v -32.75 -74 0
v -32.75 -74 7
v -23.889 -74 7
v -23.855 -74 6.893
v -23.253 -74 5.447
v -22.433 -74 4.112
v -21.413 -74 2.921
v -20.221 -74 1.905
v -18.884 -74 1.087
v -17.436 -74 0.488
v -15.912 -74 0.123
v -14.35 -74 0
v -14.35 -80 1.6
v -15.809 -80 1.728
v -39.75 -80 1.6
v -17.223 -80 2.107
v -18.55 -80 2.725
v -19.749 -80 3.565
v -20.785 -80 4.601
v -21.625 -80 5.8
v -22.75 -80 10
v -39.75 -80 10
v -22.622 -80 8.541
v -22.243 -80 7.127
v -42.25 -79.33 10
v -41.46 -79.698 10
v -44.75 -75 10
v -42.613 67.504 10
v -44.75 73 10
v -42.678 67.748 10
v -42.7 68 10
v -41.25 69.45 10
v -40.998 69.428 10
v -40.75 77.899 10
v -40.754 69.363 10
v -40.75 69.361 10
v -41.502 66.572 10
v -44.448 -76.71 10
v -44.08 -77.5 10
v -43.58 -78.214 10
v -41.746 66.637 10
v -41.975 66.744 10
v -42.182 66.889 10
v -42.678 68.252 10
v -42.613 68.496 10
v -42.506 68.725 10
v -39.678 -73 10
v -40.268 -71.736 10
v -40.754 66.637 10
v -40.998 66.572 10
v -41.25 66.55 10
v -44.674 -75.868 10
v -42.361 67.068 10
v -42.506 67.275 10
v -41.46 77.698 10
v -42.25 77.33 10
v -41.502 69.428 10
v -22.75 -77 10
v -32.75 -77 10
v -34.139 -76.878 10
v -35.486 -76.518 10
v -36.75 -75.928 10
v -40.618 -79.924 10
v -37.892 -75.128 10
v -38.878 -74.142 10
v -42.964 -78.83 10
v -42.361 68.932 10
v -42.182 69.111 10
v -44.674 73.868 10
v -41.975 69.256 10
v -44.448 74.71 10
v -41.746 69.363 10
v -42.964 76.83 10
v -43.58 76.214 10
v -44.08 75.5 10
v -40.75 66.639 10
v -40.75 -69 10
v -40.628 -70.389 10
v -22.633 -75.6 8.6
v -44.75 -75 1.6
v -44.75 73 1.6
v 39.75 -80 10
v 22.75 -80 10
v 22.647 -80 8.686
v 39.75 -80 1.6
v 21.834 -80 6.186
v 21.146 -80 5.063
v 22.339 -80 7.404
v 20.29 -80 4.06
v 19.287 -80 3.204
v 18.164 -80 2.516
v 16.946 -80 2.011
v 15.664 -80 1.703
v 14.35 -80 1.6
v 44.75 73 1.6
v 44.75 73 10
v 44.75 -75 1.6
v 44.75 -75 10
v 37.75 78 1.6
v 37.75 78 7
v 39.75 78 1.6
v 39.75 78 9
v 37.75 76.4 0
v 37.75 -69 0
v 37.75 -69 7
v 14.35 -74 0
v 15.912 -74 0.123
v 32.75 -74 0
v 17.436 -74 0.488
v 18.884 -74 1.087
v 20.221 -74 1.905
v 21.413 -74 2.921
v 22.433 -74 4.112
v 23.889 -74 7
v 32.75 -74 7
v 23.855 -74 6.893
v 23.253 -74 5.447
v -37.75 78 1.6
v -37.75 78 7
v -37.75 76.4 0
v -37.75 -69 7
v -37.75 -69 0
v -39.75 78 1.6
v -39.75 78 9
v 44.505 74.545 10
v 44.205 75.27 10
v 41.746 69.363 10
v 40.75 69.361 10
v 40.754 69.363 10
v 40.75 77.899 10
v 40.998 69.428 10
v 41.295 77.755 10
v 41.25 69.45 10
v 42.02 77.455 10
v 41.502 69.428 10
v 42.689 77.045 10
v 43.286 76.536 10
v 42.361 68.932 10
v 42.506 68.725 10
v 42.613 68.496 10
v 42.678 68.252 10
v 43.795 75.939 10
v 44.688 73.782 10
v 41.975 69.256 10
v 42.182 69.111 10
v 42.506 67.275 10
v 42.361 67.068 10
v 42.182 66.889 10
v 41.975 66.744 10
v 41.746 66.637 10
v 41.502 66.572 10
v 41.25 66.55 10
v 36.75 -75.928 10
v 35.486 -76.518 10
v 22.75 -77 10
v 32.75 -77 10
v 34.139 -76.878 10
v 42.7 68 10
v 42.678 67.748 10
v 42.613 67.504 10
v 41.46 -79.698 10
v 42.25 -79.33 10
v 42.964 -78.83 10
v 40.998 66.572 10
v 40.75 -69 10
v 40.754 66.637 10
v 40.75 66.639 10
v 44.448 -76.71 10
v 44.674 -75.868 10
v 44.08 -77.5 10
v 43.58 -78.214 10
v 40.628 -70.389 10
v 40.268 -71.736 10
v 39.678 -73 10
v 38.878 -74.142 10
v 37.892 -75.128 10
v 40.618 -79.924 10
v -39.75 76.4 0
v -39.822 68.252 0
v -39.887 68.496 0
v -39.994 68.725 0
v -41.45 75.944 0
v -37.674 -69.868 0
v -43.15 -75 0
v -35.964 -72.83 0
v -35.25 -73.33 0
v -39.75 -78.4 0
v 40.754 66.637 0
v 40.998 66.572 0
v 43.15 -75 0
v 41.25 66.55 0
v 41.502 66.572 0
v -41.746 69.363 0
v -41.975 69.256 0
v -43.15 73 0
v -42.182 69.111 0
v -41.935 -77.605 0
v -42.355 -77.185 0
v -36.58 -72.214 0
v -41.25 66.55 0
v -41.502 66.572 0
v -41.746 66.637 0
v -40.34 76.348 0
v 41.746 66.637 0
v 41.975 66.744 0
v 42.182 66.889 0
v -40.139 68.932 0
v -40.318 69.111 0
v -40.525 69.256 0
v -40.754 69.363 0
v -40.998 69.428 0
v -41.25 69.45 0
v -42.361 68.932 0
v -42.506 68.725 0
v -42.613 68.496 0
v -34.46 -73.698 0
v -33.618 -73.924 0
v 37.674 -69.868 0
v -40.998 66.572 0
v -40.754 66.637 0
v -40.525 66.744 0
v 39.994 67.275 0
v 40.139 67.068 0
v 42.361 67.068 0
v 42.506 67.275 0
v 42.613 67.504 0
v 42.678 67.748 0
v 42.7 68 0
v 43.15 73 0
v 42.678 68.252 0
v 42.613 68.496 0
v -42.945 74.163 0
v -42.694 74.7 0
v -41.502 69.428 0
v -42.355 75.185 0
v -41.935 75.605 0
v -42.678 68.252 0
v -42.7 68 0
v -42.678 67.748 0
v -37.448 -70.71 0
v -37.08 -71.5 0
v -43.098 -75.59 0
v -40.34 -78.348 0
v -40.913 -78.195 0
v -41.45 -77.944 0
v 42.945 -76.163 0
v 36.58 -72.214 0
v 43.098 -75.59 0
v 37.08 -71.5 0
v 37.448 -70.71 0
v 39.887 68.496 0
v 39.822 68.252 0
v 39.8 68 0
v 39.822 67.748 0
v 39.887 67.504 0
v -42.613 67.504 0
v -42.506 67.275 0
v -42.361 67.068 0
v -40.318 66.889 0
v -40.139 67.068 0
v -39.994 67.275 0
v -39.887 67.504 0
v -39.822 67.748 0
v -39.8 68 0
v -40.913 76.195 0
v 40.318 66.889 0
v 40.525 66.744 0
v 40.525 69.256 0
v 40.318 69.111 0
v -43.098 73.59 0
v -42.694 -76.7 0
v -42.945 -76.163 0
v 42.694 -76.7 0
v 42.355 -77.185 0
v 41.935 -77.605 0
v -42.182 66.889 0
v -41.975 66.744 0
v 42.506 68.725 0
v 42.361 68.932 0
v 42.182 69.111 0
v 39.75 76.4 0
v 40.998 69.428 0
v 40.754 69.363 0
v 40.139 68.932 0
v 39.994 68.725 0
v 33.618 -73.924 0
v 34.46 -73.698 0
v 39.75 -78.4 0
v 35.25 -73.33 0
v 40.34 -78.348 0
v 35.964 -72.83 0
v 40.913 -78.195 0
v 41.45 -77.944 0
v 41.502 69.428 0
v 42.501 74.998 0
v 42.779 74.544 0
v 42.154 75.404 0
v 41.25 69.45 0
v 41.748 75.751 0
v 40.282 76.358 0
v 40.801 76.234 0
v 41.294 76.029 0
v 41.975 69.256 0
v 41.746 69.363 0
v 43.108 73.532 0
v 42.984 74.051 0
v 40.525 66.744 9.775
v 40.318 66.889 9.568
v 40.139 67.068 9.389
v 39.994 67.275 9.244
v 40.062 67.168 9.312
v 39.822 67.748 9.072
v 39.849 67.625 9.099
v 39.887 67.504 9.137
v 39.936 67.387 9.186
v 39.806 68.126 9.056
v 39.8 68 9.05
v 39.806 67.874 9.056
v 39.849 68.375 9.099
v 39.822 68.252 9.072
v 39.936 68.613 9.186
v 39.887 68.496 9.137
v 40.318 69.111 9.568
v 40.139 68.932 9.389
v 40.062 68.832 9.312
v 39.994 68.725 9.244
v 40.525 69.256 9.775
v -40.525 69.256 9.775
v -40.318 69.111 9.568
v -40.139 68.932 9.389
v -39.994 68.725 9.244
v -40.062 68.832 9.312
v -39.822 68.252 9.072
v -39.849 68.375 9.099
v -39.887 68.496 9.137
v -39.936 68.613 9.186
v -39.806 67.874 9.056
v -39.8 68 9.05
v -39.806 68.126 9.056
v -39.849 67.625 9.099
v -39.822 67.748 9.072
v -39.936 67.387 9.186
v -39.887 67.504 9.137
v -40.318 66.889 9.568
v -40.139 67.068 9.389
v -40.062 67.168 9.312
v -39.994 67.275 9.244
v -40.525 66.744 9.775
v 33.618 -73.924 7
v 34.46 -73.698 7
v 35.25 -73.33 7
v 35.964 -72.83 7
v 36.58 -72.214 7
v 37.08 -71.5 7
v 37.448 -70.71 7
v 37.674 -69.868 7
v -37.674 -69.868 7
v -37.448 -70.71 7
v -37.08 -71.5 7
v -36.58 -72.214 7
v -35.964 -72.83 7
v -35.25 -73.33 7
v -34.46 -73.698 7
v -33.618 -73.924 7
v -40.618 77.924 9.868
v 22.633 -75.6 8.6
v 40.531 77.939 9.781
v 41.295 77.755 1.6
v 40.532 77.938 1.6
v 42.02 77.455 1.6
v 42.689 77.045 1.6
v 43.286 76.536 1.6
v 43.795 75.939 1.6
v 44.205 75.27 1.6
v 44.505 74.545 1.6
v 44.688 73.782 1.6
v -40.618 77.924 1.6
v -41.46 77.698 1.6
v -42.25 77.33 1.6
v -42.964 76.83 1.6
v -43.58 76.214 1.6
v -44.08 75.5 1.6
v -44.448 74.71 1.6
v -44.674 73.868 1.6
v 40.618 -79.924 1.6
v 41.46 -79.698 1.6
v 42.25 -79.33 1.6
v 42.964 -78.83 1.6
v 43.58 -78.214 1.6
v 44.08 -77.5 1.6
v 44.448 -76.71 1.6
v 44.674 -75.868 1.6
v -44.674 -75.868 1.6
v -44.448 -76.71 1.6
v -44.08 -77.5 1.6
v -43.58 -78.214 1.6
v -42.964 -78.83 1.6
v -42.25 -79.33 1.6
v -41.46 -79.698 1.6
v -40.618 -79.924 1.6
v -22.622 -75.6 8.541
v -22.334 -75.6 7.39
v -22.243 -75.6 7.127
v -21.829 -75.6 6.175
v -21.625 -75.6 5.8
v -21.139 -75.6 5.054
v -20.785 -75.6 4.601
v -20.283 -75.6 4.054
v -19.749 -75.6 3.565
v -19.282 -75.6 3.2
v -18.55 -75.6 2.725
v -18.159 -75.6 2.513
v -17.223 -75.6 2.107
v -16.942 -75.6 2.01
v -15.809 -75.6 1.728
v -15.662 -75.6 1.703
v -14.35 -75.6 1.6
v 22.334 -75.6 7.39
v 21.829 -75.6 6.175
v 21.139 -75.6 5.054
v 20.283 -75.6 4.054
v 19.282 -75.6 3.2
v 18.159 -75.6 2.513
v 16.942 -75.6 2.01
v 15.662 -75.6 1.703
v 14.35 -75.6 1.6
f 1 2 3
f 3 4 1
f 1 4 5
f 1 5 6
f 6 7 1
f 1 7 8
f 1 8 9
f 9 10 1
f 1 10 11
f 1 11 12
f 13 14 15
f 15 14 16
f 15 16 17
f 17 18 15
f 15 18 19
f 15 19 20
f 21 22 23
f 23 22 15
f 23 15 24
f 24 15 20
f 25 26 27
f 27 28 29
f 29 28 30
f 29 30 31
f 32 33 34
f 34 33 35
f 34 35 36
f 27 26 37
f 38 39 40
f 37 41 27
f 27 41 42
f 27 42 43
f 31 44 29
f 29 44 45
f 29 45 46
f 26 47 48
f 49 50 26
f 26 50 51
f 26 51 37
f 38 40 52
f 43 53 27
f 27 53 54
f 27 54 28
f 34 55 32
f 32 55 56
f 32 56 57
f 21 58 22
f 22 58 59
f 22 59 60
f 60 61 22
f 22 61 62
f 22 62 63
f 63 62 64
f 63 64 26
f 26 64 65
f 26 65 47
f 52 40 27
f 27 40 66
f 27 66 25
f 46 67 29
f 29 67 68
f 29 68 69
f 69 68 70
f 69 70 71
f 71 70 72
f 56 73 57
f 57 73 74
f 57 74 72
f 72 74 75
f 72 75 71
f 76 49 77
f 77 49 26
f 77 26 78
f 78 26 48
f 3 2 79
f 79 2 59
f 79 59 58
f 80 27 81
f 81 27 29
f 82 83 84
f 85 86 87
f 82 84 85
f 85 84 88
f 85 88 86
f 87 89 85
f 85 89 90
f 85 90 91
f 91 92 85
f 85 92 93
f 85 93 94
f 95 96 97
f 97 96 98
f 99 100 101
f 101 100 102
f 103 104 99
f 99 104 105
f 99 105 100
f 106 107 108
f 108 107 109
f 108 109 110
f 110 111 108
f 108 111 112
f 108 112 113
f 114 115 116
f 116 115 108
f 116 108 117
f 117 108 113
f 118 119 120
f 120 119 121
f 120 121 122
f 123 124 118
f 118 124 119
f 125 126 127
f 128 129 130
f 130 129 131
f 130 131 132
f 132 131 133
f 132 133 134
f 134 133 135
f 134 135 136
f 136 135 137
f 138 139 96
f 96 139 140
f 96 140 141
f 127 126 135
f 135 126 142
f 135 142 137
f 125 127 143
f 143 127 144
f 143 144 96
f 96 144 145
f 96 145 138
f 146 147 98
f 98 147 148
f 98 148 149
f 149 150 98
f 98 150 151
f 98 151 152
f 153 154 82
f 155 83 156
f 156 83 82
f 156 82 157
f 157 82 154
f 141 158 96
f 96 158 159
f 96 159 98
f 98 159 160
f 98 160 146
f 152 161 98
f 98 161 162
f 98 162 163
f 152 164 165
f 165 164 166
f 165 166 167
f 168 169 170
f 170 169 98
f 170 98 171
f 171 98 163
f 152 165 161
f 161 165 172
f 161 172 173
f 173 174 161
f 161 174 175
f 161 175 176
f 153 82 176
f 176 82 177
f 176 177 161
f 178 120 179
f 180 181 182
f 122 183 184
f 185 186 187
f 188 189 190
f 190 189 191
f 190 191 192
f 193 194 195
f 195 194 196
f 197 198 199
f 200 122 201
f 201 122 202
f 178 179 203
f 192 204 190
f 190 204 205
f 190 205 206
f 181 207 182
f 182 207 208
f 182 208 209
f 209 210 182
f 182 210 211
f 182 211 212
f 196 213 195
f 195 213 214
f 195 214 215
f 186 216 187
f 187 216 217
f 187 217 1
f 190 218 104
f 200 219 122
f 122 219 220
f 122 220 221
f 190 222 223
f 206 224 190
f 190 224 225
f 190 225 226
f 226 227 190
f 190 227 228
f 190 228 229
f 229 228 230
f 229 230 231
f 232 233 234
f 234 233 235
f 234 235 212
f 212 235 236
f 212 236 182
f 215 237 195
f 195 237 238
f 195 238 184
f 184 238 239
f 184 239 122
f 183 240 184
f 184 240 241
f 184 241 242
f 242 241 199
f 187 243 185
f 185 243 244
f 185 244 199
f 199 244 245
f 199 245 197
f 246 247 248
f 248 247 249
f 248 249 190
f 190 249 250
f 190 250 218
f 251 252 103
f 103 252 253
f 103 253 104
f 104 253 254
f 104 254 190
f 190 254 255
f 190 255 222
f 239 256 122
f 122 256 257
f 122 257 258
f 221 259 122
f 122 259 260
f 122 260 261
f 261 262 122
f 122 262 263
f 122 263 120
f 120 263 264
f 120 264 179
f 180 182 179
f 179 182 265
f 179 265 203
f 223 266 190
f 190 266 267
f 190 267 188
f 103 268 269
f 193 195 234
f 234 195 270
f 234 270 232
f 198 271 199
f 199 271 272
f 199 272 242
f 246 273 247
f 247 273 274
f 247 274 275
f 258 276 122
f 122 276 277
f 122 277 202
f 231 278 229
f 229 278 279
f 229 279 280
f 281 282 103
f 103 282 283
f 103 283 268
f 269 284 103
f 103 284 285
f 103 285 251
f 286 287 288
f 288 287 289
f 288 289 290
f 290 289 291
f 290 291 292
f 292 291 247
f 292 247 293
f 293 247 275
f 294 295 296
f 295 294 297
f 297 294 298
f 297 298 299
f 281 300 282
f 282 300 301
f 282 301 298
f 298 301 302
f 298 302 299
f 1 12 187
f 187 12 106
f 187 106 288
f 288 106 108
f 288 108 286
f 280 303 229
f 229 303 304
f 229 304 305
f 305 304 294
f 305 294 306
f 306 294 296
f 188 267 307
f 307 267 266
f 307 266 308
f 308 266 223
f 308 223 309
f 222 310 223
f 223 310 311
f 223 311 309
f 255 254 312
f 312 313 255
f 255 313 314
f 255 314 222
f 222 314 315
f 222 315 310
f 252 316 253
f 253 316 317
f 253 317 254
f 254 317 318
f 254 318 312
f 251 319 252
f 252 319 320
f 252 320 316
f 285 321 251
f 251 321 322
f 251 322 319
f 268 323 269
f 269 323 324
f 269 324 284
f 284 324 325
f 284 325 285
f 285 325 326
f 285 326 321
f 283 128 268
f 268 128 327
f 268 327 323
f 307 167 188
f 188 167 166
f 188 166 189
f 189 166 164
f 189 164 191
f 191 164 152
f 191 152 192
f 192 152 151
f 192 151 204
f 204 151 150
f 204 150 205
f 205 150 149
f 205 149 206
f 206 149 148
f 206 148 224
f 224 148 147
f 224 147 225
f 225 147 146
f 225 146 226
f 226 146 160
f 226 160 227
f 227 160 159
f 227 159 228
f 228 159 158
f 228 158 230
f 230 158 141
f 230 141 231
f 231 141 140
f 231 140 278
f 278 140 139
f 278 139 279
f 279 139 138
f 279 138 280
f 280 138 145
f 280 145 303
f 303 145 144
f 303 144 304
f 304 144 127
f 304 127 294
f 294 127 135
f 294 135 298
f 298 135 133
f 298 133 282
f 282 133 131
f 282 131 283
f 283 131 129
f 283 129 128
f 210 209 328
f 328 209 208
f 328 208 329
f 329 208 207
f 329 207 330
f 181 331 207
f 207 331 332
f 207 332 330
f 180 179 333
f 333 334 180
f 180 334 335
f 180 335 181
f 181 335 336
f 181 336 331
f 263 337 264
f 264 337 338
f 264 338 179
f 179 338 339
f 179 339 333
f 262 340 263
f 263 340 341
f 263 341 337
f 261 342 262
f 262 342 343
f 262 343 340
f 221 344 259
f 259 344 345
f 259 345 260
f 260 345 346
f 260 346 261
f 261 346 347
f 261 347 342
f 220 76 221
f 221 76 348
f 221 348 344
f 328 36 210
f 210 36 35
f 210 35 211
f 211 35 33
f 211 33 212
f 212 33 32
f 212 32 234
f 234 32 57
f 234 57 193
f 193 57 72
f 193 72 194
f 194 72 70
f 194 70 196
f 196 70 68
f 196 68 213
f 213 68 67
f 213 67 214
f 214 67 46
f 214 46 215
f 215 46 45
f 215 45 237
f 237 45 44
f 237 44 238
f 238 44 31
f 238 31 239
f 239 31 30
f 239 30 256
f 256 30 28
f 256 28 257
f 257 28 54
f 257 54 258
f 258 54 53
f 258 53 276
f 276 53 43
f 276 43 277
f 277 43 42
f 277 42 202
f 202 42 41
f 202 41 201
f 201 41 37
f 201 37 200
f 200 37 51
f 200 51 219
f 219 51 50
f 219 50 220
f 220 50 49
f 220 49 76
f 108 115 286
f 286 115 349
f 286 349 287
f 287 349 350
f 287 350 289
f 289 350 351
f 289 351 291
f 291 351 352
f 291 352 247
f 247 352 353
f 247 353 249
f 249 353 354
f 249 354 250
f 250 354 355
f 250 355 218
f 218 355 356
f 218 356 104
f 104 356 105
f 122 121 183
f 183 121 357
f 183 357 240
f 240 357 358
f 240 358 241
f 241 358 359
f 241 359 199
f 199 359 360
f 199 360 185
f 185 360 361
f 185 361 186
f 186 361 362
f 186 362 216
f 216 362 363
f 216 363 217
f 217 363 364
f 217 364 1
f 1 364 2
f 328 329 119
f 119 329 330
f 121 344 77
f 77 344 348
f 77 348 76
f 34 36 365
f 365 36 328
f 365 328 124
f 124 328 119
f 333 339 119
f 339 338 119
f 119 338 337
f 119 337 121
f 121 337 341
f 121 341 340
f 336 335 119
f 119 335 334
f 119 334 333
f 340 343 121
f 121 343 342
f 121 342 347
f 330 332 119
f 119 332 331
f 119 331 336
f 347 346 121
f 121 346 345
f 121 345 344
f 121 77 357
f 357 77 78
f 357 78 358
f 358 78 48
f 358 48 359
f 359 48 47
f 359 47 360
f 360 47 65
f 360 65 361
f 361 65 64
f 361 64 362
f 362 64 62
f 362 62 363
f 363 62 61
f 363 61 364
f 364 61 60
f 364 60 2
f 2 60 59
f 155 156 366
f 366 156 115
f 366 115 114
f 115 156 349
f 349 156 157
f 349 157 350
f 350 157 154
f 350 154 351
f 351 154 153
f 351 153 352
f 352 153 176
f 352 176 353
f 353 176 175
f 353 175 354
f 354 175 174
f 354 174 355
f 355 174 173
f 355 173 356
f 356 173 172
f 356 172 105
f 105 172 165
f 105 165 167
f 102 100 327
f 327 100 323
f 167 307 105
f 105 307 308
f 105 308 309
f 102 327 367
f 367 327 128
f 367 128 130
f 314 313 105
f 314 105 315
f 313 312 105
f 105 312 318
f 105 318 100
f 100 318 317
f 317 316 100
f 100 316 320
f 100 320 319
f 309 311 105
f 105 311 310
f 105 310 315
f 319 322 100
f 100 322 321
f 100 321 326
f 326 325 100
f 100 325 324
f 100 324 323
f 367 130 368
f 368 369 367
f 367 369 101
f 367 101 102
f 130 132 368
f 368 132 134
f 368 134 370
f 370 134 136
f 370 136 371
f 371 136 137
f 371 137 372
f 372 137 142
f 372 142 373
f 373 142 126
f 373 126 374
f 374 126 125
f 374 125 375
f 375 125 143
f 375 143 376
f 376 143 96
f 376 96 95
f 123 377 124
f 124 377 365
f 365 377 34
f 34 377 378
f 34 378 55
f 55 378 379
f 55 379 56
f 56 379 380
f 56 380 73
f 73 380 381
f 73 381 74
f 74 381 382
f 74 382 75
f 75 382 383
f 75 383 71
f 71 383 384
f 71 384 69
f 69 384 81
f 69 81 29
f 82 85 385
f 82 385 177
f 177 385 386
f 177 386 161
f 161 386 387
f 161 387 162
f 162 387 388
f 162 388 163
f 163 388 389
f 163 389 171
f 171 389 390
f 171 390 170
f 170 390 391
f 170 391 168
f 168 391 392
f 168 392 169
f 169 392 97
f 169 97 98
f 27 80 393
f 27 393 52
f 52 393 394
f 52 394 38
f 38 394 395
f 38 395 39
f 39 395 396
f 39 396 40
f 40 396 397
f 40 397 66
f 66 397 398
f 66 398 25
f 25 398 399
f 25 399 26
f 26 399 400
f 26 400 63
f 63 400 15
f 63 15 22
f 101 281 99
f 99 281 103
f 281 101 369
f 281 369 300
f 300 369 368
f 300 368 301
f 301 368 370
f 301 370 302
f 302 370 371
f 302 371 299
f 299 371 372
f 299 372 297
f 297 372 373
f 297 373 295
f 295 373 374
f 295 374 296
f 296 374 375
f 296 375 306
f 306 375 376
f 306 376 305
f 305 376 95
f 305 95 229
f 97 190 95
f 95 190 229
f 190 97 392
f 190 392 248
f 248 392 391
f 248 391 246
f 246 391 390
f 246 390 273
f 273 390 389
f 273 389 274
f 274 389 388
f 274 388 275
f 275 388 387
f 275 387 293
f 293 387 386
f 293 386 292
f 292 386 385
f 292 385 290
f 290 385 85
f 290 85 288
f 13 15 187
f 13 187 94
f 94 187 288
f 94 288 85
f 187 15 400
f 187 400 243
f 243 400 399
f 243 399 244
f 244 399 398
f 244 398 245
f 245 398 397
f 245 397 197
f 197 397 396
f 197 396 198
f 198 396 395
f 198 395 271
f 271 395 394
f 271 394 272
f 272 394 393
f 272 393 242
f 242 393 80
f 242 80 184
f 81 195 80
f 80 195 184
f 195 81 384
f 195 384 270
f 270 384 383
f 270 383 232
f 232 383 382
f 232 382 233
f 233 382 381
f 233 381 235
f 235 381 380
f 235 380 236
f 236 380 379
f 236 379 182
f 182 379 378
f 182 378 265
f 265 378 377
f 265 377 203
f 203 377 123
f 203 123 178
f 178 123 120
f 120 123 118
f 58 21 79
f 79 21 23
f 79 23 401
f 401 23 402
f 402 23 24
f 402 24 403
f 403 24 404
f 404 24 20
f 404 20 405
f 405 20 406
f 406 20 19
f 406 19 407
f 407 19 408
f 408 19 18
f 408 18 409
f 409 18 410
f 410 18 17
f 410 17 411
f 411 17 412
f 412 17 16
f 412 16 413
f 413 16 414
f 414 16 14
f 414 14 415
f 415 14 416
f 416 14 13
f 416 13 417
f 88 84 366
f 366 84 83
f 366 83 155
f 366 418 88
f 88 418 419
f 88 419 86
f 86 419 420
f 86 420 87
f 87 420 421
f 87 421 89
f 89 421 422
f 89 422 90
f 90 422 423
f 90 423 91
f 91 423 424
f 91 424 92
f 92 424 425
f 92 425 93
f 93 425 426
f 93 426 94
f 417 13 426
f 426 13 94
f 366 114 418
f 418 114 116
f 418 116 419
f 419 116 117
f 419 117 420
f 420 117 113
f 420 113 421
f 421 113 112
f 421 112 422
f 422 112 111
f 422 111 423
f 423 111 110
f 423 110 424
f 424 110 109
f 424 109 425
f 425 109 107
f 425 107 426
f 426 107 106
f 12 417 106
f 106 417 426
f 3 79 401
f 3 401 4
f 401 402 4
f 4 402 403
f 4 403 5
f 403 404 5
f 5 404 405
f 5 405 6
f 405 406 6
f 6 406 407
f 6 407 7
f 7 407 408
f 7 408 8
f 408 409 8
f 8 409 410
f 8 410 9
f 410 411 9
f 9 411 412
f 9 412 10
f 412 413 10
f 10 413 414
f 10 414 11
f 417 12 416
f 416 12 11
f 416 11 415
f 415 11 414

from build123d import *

# Parameters (mm, degrees)
BOSS_EXTRUDE1_DEPTH = 10
SKETCH4_R           = 1.45
CUT_EXTRUDE2_DEPTH  = 93.209340633
FILLET3_R           = 5
CHAMFER1_SIZE       = 3
FILLET1_R           = 5
FILLET2_R           = 5
CHAMFER2_SIZE       = 1.6
CUT_EXTRUDE1_DEPTH  = 165.519185811
CHAMFER3_SIZE       = 1.6


# Some blends are built 0.0001 mm under size
with BuildPart() as part:
    # Sketch2 → Boss-Extrude1 (new body)
    with BuildSketch(Plane.XY):
        Polygon((-44.75, 78), (-37.75, 78), (-37.75, -74), (37.75, -74), (37.75, 78), (44.75, 78), (44.75, -80), (-44.75, -80), align=None)
    extrude(amount=BOSS_EXTRUDE1_DEPTH)

    # Sketch4 → Cut-Extrude2 (cut, through all)
    with BuildSketch(Plane.XY.offset(10)):
        with Locations((-41.25, 68)):
            Circle(SKETCH4_R)
        with Locations(Location((41.25, 68, 0), (0, 0, 180))):
            Circle(SKETCH4_R)
    extrude(amount=-CUT_EXTRUDE2_DEPTH, mode=Mode.SUBTRACT)

    # Fillet3
    fillet3_edges = [part.edges().sort_by_distance(p)[0] for p in [
        (-37.75, -74, 5),
        (37.75, -74, 5),
    ]]
    fillet(fillet3_edges, radius=FILLET3_R)

    # Chamfer1
    # the kernel refuses this chamfer: 3 mm, written as the material it takes off along each edge
    with BuildSketch(Plane(origin=(37.75, -69, 10), x_dir=(0.9996219169112968, 0, 0.02749587661058619), z_dir=(0, 1, 0))) as chamfer1_piece_1:
        Polygon((CHAMFER1_SIZE * 0.999621916911, CHAMFER1_SIZE * 0.0274958766106), (-CHAMFER1_SIZE * 0.0274958766106, CHAMFER1_SIZE * 0.999621916911), (0, 0), align=None)
    extrude(amount=154.715048964, mode=Mode.SUBTRACT)
    with BuildSketch(Plane(origin=(-32.75, -74, 10), x_dir=(0, -0.9996219169112968, 0.02749587661058619), z_dir=(1, 0, 0))) as chamfer1_piece_2:
        Polygon((CHAMFER1_SIZE * 0.999621916911, CHAMFER1_SIZE * 0.0274958766106), (-CHAMFER1_SIZE * 0.0274958766106, CHAMFER1_SIZE * 0.999621916911), (0, 0), align=None)
    extrude(amount=65.5, mode=Mode.SUBTRACT)
    with BuildSketch(Plane(origin=(-37.75, 85.715048964, 10), x_dir=(0.027495876610586775, 0, -0.9996219169112968), z_dir=(0, -1, 0))) as chamfer1_piece_3:
        Polygon((CHAMFER1_SIZE * 0.999621916911, -CHAMFER1_SIZE * 0.0274958766106), (-CHAMFER1_SIZE * 0.0274958766106, -CHAMFER1_SIZE * 0.999621916911), (0, 0), align=None)
    extrude(amount=154.715048964, mode=Mode.SUBTRACT)
    with BuildSketch(Plane(origin=(32.75, -69, 10), x_dir=(0, -1, 0), z_dir=(-1, 0, 0))) as chamfer1_piece_4:
        Polygon((5 + CHAMFER1_SIZE, 0), (5, -CHAMFER1_SIZE), (5, 0), align=None)
    revolve(axis=Axis((32.75, -69, 10), (0, 0, 1)), revolution_arc=90, mode=Mode.SUBTRACT)
    with BuildSketch(Plane(origin=(-32.75, -69, 10), x_dir=(-1, 0, 0), z_dir=(0, 1, 0))) as chamfer1_piece_5:
        Polygon((5, -CHAMFER1_SIZE), (5 + CHAMFER1_SIZE, 0), (5, 0), align=None)
    revolve(axis=Axis((-32.75, -69, 10), (0, 0, 1)), revolution_arc=90, mode=Mode.SUBTRACT)

    # Fillet1
    fillet1_edges = [part.edges().sort_by_distance(p)[0] for p in [
        (44.75, 78, 5),
        (-44.75, 78, 5),
    ]]
    fillet(fillet1_edges, radius=FILLET1_R)

    # Fillet2
    fillet2_edges = [part.edges().sort_by_distance(p)[0] for p in [
        (44.75, -80, 5),
        (-44.75, -80, 5),
    ]]
    fillet(fillet2_edges, radius=FILLET2_R)

    # Chamfer2
    chamfer2_edges = [part.edges().sort_by_distance(p)[0] for p in [
        (38.75, 78, 0),
        (-44.75, -1, 0),
        (-43.285533906, 76.535533906, 0),
        (43.285533906, 76.535533906, 0),
        (-38.75, 78, 0),
        (44.75, -1, 0),
        (0, -80, 0),
        (-43.285533906, -78.535533906, 0),
        (43.285533906, -78.535533906, 0),
    ]]
    chamfer(chamfer2_edges, length=CHAMFER2_SIZE)

    # Sketch3 → Cut-Extrude1 (cut, through all)
    with BuildSketch(Plane.XZ.offset(80)):
        with BuildLine():
            Line((-14.35, 18.4), (14.35, 18.4))
            ThreePointArc((14.35, 18.4), (22.75, 10), (14.35, 1.6))
            Line((14.35, 1.6), (-14.35, 1.6))
            ThreePointArc((-14.35, 1.6), (-22.75, 10), (-14.35, 18.4))
        make_face()
    extrude(amount=-CUT_EXTRUDE1_DEPTH, mode=Mode.SUBTRACT)

    # Chamfer3
    chamfer3_edges = [part.edges().sort_by_distance(p)[0] for p in [
        (-19.11235236, -74, 3.080462443),
        (19.11235236, -74, 3.080462443),
        (0, -74, 1.6),
    ]]
    chamfer(chamfer3_edges, length=CHAMFER3_SIZE - 0.0001)  # a hair under: the kernel refuses the full size


solid = part.part
